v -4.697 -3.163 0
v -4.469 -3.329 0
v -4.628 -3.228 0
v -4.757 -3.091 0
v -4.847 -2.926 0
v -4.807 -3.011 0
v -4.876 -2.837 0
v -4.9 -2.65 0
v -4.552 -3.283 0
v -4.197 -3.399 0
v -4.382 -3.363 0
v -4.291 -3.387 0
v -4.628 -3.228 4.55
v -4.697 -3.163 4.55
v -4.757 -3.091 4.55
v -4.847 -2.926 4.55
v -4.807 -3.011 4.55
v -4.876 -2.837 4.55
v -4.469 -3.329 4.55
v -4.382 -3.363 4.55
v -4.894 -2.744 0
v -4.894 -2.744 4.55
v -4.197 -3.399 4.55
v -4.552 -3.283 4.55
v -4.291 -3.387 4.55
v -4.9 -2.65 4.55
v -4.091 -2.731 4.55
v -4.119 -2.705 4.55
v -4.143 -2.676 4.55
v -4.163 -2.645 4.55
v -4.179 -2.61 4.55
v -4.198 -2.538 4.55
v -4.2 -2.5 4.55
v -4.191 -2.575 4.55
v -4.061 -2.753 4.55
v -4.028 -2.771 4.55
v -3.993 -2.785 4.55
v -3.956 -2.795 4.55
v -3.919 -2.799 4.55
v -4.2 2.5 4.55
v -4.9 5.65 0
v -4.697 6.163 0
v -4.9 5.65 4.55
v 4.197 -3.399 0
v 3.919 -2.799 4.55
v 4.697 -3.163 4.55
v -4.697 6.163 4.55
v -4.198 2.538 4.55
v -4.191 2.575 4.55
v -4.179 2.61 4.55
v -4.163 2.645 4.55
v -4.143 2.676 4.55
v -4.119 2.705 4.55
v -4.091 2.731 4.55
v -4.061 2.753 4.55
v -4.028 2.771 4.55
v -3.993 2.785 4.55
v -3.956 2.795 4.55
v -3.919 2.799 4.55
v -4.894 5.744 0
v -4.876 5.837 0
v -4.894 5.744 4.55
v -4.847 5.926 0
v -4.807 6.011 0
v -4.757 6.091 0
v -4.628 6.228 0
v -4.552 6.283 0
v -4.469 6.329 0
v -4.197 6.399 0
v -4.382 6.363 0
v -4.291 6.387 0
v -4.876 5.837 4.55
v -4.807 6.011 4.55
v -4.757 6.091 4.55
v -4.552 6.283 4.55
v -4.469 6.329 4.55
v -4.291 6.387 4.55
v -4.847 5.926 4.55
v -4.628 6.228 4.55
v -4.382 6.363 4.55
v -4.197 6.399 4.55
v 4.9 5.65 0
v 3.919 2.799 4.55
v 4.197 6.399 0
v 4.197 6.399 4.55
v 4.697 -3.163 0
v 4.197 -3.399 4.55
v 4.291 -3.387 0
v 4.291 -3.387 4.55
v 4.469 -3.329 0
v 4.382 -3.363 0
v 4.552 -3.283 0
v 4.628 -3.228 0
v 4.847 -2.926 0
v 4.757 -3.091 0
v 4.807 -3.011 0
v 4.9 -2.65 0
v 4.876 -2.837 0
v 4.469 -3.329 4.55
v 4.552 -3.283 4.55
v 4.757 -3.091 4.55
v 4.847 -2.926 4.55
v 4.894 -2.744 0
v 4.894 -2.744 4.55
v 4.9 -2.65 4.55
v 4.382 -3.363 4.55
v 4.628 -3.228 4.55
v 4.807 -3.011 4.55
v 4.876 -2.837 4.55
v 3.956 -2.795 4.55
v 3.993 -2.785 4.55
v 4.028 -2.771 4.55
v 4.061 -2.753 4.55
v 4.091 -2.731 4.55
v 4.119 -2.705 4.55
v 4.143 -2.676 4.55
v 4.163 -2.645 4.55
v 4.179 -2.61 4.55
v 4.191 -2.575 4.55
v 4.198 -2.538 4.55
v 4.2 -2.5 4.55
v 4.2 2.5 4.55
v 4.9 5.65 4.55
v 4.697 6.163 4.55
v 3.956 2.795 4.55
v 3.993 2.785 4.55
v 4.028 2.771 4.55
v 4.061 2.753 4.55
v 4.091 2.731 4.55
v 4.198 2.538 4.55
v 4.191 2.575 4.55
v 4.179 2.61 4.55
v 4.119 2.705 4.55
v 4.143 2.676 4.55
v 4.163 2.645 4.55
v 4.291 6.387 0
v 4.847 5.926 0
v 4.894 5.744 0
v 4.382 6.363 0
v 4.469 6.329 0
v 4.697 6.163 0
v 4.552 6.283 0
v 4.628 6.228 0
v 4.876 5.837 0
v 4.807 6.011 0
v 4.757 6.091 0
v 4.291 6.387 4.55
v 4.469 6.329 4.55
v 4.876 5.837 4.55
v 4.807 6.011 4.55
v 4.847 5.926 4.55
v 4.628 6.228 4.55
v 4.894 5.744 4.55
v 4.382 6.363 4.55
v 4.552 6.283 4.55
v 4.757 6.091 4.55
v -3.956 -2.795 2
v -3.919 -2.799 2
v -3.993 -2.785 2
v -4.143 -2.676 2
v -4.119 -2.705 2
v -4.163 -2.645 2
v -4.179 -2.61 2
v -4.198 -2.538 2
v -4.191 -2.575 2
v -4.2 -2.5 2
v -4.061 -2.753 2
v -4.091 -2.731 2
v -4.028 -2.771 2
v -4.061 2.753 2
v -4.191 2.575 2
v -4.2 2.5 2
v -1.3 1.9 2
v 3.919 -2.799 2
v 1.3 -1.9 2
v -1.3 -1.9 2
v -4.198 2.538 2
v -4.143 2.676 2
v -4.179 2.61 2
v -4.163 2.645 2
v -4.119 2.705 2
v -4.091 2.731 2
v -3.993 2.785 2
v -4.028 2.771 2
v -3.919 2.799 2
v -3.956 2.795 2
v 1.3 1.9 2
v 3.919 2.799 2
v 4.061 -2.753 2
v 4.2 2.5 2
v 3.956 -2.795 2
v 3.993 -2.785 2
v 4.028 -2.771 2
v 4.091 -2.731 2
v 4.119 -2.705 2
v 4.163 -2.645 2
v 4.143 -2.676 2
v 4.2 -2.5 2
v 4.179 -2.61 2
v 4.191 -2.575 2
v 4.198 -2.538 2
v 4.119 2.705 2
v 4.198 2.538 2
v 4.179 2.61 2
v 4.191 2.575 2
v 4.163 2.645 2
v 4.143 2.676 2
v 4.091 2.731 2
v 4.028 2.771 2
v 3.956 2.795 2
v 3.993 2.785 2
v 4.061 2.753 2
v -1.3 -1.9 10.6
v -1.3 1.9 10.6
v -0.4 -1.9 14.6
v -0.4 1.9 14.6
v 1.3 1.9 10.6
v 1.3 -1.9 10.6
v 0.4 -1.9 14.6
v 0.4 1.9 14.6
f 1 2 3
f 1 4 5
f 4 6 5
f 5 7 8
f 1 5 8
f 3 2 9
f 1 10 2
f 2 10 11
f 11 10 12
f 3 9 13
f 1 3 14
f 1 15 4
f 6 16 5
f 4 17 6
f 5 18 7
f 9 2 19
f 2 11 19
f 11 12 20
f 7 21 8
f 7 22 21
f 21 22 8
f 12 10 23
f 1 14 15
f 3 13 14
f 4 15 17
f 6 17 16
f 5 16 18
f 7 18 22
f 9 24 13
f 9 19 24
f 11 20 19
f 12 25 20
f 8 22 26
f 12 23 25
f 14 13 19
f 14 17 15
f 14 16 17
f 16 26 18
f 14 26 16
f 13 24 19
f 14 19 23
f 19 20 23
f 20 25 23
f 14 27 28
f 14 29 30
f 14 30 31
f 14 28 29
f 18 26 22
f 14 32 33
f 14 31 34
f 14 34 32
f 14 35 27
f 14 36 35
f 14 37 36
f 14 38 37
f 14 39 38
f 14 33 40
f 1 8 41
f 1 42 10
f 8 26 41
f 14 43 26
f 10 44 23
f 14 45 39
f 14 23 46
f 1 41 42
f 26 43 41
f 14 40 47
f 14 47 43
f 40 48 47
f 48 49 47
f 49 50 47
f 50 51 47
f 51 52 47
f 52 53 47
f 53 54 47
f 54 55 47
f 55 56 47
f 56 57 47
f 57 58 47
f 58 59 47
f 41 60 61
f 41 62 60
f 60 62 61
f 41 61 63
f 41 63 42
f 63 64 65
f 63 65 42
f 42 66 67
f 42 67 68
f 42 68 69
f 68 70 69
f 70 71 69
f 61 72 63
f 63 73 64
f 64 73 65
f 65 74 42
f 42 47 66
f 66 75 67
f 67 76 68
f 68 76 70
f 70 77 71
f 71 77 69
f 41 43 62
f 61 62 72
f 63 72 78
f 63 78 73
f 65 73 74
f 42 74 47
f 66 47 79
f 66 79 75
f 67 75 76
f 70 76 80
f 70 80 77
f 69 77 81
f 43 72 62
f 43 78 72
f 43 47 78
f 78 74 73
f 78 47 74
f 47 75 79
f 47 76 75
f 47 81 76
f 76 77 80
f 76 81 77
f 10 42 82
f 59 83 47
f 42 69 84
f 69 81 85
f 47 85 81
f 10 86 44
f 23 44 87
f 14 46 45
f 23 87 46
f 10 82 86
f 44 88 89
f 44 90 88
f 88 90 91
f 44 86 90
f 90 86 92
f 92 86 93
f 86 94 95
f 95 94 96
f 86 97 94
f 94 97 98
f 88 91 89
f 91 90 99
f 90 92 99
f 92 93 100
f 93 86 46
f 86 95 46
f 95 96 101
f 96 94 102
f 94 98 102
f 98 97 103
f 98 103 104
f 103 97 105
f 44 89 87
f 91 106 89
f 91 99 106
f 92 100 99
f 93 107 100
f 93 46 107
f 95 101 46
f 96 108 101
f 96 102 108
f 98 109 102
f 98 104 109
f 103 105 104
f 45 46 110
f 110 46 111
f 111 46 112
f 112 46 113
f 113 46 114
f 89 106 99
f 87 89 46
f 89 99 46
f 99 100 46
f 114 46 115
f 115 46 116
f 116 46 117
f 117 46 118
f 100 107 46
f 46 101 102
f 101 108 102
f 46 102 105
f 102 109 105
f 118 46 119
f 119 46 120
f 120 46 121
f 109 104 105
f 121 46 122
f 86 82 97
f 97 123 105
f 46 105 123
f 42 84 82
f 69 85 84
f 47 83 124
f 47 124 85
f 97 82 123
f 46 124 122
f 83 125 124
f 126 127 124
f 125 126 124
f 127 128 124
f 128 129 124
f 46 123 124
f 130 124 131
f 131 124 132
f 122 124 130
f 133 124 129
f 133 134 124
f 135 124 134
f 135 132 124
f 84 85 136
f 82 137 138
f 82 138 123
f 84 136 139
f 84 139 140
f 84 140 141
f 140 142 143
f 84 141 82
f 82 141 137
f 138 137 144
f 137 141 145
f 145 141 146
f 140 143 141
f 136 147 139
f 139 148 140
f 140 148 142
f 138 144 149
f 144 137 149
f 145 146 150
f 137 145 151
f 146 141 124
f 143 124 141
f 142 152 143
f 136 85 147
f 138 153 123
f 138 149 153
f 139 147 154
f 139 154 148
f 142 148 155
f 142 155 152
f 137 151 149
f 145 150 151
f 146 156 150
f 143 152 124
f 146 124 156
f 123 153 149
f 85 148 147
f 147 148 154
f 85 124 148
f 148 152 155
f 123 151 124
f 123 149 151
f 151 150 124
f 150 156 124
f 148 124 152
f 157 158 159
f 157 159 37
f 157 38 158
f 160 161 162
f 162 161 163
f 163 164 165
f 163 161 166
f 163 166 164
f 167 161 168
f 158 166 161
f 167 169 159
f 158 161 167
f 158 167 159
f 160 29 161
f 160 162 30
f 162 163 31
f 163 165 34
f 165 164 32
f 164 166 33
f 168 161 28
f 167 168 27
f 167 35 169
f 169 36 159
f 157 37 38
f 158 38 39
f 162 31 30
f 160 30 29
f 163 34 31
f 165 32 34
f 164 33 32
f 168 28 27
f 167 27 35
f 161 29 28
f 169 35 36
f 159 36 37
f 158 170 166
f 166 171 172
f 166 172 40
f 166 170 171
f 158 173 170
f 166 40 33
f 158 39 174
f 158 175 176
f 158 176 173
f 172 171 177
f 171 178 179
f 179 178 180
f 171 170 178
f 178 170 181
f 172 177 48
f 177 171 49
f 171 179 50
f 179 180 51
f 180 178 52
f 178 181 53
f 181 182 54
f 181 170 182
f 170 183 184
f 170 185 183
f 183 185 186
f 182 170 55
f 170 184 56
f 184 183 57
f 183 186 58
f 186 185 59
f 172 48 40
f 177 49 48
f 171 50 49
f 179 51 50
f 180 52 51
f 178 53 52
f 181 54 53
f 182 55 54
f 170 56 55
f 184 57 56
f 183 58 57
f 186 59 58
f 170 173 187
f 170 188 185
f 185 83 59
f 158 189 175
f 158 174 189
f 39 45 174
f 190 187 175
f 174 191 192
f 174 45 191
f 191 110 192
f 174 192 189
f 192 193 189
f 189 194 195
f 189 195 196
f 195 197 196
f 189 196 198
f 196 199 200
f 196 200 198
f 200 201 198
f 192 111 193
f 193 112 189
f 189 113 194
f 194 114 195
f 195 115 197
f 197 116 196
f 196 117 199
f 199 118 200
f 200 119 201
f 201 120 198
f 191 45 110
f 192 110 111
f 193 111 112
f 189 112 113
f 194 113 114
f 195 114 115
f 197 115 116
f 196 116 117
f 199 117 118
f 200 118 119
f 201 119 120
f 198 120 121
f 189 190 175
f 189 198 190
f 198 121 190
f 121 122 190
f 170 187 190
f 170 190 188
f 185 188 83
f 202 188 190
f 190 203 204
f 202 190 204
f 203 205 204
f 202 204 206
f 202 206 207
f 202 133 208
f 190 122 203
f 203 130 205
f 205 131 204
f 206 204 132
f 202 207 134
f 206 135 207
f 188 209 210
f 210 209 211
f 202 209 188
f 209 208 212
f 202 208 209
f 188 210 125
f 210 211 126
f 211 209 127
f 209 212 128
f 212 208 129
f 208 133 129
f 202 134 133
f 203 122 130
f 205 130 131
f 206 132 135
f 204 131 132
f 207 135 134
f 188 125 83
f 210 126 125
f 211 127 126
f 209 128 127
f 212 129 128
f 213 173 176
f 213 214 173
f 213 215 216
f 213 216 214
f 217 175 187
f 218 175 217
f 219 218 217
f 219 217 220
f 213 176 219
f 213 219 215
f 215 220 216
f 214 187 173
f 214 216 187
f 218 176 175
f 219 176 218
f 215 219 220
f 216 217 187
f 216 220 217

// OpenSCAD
$fn = 50;

difference() {
	union() {
		translate(v = [0, 0, 0]) {
			rotate(a = [0, 0, 0]) {
				difference() {
					union() {
						translate(v = [0, 0, 0]) {
							rotate(a = [0, 0, 0]) {
								difference() {
									union() {
										translate(v = [0, 0, 0]) {
											rotate(a = [0, 0, 0]) {
												difference() {
													union() {
														translate(v = [0, 1.5, 0]) {
															hull() {
																translate(v = [-4.15, 4.15, 0]) {
																	cylinder(h = 4.55, r = 0.75);
																}
																translate(v = [4.15, 4.15, 0]) {
																	cylinder(h = 4.55, r = 0.75);
																}
																translate(v = [-4.15, -4.15, 0]) {
																	cylinder(h = 4.55, r = 0.75);
																}
																translate(v = [4.15, -4.15, 0]) {
																	cylinder(h = 4.55, r = 0.75);
																}
															}
														}
													}
													union() {
														translate(v = [0, 0, 2.0]) {
															hull() {
																translate(v = [-3.9000000000000004, 2.5, 0]) {
																	cylinder(h = 2.65, r = 0.3);
																}
																translate(v = [3.9000000000000004, 2.5, 0]) {
																	cylinder(h = 2.65, r = 0.3);
																}
																translate(v = [-3.9000000000000004, -2.5, 0]) {
																	cylinder(h = 2.65, r = 0.3);
																}
																translate(v = [3.9000000000000004, -2.5, 0]) {
																	cylinder(h = 2.65, r = 0.3);
																}
															}
														}
													}
												}
											}
										}
										translate(v = [0, 0, 0]) {
											rotate(a = [0, 0, 0]) {
												difference() {
													union() {
														translate(v = [-1.4000000000000001, -1.9, 1.95]) {
															cube(size = [2.8000000000000003, 3.8, 12.65]);
														}
													}
													union() {
														translate(v = [0, 2.0, 0]) {
															rotate(a = [90, 0, 0]) {
																linear_extrude(height = 4.0) {
																	polygon(points = [[-1.3, 1.85], [-1.3, 10.6], [-0.4, 14.6], [-0.4, 14.799999999999999], [-1.6, 14.799999999999999], [-1.6, 1.85]]);
																}
															}
														}
														translate(v = [0, 2.0, 0]) {
															rotate(a = [90, 0, 0]) {
																linear_extrude(height = 4.0) {
																	polygon(points = [[1.3, 1.85], [1.3, 10.6], [0.4, 14.6], [0.4, 14.799999999999999], [1.6, 14.799999999999999], [1.6, 1.85]]);
																}
															}
														}
													}
												}
											}
										}
									}
									union();
								}
							}
						}
					}
					union();
				}
			}
		}
	}
	union();
}
